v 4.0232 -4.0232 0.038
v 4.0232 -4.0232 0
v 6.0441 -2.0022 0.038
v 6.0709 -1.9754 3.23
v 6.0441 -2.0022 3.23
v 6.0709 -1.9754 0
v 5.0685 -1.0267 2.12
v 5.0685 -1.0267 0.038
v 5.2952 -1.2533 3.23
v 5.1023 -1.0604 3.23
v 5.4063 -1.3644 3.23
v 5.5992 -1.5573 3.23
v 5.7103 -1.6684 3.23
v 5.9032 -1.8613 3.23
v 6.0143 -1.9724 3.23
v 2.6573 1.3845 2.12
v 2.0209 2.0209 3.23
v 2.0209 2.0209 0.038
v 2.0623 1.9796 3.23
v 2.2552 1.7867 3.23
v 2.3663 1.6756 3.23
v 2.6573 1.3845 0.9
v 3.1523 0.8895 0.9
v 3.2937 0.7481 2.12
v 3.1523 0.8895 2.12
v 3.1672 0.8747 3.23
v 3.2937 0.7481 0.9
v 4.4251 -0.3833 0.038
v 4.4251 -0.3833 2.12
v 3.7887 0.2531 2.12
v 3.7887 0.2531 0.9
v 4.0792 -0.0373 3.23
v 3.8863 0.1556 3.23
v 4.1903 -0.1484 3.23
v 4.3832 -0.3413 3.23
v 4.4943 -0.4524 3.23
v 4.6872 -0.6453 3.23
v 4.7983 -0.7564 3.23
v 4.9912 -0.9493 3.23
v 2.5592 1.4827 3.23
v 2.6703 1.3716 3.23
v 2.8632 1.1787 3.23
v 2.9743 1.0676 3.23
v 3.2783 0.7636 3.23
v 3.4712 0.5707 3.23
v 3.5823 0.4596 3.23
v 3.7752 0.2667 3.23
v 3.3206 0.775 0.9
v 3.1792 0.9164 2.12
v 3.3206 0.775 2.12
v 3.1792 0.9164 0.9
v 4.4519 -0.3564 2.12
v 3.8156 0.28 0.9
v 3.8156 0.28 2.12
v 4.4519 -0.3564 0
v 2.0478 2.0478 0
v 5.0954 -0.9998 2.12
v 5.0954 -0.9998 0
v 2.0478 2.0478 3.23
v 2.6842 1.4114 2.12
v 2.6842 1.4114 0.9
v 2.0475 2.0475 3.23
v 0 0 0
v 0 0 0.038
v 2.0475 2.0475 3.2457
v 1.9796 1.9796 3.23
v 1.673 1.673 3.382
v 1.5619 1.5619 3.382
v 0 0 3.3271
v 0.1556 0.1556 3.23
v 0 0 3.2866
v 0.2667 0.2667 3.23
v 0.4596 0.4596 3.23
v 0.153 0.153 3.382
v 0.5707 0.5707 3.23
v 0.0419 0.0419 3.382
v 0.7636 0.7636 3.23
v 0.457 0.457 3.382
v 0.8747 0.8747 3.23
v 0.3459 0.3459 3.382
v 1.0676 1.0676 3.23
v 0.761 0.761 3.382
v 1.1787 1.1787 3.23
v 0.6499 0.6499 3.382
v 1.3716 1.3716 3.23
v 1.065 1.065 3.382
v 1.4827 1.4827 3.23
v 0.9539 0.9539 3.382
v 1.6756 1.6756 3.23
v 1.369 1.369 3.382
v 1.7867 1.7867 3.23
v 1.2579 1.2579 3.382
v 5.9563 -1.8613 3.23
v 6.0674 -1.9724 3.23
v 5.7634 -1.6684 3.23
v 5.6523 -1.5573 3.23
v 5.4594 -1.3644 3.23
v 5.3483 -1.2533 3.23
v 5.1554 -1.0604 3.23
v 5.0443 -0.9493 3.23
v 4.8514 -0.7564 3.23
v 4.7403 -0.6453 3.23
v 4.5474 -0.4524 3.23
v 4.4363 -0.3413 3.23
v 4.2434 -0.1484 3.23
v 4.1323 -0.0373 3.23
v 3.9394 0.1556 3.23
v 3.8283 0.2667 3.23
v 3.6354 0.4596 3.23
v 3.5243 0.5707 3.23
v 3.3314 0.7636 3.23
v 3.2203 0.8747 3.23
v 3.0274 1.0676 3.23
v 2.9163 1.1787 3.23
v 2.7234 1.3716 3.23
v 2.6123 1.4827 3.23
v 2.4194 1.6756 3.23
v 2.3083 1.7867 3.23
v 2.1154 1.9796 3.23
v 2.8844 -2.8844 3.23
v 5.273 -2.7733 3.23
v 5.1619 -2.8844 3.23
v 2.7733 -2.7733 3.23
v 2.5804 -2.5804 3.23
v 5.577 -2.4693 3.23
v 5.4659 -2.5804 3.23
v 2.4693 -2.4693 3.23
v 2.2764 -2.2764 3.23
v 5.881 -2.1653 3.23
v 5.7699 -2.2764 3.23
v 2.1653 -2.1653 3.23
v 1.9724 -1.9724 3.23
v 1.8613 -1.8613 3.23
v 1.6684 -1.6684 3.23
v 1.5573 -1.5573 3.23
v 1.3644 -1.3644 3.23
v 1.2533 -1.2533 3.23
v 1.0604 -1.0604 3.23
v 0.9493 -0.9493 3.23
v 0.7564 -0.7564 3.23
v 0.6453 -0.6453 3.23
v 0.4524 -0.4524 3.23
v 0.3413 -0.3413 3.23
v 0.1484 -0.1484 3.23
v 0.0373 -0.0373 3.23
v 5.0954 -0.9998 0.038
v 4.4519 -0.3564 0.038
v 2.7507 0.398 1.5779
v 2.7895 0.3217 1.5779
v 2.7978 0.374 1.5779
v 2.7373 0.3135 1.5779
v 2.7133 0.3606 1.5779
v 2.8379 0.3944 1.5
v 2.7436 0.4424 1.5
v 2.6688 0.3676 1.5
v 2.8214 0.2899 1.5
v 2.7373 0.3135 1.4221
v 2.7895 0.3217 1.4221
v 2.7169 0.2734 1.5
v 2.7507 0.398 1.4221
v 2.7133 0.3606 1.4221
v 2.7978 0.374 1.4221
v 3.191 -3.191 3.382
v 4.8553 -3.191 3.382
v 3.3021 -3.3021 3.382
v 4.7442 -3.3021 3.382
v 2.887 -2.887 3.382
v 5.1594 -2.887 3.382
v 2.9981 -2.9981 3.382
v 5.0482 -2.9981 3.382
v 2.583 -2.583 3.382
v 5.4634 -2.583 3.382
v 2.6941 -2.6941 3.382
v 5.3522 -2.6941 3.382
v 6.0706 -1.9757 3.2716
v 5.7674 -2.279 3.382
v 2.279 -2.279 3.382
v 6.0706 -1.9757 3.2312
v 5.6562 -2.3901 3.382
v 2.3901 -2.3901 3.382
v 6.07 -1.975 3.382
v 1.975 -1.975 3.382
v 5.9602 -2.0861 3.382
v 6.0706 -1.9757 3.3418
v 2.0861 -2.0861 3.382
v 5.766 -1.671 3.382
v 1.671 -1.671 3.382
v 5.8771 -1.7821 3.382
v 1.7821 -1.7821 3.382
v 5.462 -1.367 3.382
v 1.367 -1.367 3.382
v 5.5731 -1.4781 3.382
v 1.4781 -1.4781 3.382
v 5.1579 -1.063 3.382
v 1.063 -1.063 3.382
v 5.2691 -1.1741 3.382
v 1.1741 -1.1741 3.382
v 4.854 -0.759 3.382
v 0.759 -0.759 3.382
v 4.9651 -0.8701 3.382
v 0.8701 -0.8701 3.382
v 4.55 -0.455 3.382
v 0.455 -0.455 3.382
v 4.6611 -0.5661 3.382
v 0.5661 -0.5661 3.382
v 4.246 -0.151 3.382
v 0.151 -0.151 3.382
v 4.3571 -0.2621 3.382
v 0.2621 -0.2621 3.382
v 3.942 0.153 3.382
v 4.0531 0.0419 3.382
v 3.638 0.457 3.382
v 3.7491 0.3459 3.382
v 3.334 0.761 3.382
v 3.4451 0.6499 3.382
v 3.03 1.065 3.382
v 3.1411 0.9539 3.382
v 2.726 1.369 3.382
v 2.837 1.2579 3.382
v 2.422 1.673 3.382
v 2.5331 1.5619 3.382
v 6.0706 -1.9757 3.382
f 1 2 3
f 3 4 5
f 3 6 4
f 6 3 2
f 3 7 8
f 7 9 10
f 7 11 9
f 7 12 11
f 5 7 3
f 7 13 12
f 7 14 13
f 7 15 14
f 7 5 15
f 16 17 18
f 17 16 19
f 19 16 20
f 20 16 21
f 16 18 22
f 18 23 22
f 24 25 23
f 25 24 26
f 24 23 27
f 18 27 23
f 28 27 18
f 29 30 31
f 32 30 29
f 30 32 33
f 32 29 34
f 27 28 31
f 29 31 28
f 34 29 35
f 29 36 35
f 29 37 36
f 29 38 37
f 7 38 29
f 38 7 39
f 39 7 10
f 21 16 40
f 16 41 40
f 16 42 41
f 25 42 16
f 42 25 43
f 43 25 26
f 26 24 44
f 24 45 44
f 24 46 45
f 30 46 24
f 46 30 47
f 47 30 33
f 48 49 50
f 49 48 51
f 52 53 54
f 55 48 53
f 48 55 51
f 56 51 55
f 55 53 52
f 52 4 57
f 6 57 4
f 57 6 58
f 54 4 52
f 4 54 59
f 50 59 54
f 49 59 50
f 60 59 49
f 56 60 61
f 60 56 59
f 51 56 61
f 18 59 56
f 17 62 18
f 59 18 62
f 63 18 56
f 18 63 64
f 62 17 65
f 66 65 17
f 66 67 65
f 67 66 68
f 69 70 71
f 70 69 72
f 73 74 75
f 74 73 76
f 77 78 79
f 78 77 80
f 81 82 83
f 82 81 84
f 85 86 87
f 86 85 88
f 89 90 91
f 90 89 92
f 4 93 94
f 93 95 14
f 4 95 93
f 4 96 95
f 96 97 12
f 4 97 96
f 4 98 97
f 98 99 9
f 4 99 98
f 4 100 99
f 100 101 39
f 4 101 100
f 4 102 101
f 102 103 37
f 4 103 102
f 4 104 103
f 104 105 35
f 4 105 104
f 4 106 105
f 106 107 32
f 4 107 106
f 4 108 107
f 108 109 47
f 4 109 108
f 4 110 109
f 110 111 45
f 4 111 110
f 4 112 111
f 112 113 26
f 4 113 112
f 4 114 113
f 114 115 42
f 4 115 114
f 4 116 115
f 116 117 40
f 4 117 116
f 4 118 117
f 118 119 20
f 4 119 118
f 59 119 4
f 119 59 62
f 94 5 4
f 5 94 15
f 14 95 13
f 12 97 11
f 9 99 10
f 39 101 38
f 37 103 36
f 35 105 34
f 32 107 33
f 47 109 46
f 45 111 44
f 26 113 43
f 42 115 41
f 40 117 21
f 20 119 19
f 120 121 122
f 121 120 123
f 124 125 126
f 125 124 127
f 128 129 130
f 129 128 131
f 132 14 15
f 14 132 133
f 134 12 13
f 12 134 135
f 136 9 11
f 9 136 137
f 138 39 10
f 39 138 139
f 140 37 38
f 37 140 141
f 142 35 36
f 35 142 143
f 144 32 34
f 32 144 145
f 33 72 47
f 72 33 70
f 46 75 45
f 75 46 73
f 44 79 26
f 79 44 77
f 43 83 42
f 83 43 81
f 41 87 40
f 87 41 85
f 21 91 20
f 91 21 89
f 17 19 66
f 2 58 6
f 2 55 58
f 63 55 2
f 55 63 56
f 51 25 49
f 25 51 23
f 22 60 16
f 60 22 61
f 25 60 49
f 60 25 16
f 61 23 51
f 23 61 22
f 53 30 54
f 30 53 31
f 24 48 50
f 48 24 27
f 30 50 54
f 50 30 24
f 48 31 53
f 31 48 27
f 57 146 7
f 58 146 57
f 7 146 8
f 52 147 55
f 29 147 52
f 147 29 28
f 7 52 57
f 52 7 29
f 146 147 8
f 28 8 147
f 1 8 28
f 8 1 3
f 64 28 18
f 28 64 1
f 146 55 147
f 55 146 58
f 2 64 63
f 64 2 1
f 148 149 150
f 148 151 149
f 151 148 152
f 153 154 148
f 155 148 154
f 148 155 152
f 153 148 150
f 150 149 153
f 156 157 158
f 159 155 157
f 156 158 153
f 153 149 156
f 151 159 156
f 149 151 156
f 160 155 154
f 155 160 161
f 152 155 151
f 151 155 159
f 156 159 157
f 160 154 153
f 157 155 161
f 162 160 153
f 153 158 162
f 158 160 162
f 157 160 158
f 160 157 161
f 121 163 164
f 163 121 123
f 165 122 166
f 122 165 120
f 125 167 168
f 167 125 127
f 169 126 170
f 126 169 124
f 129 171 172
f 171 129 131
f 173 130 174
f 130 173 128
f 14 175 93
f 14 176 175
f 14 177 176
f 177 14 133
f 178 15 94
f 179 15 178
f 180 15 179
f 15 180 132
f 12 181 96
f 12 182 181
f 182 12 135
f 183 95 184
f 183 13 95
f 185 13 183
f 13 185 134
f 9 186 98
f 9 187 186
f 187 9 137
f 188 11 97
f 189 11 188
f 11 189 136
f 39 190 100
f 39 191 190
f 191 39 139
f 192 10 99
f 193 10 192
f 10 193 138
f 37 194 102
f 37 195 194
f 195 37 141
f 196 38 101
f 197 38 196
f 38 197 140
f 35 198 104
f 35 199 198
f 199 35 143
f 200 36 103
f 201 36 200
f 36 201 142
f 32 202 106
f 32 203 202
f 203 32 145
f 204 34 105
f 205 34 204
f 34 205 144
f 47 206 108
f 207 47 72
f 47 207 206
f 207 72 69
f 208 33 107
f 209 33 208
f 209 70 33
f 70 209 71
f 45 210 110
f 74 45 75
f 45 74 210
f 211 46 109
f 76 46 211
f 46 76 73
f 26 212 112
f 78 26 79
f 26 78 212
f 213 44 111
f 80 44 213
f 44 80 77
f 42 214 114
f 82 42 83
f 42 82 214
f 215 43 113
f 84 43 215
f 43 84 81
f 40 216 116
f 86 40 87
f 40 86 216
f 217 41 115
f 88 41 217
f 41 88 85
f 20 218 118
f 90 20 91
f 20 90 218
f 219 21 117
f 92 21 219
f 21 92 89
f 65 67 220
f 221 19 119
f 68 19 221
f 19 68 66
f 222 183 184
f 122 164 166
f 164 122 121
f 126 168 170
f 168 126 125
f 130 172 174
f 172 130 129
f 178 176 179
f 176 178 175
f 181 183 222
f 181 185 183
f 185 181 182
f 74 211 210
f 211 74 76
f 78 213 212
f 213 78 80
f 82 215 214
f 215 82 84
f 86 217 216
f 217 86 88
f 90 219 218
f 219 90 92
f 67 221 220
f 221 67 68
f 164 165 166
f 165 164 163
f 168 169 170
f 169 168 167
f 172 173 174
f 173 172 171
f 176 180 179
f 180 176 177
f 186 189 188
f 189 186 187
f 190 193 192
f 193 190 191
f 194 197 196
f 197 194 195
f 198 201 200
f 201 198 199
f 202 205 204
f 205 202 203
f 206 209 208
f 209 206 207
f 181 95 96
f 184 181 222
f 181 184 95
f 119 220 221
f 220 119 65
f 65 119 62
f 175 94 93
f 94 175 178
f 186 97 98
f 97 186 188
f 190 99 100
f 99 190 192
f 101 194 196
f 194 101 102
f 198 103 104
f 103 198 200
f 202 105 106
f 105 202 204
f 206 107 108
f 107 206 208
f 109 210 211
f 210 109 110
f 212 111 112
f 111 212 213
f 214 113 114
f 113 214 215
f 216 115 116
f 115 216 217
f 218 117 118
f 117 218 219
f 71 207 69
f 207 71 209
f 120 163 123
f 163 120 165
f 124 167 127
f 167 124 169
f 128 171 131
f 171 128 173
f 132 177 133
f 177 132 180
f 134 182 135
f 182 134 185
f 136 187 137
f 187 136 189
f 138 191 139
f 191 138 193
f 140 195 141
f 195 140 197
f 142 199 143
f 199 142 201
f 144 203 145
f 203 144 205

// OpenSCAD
rotate([0,0,-45]) {
// foor
cube([5.6896, 2.896, 0.038]);
// wall plane
translate([0, 2.896, 0]) {
    rotate([90,0,0]) {
        difference() {
            // wall
            cube([5.6896, 3.23, 0.038]);
            // window
            translate([0.9, 0.9, 0]) {
                cube([0.7, 1.22, 0.038]);
            }
            // window
            translate([1.8, 0.9, 0]) {
                cube([0.7, 1.22, 0.038]);
            }
            // door
            translate([3.4, 0.0, 0]) {
                cube([0.91, 2.12, 0.038]);
            }
        }
    }
}
// head
translate([1.70,2.2,1.5]) {
    sphere(r = 0.09);
}
}
// pergola
intersection() {
    rotate([0,0,-45]) {
        translate([0,0,3.23]) {
            cube([5.6896, 2.8956, 0.152]);
        }
    }
    // slats
    for(i = [0 : 0.304 : 5]) {
        translate([0, i - 5, 4]) {
            rotate([-20,0,0]) {
                cube([10, 2.8956, 0.038]);
            }
        }
    }
}
